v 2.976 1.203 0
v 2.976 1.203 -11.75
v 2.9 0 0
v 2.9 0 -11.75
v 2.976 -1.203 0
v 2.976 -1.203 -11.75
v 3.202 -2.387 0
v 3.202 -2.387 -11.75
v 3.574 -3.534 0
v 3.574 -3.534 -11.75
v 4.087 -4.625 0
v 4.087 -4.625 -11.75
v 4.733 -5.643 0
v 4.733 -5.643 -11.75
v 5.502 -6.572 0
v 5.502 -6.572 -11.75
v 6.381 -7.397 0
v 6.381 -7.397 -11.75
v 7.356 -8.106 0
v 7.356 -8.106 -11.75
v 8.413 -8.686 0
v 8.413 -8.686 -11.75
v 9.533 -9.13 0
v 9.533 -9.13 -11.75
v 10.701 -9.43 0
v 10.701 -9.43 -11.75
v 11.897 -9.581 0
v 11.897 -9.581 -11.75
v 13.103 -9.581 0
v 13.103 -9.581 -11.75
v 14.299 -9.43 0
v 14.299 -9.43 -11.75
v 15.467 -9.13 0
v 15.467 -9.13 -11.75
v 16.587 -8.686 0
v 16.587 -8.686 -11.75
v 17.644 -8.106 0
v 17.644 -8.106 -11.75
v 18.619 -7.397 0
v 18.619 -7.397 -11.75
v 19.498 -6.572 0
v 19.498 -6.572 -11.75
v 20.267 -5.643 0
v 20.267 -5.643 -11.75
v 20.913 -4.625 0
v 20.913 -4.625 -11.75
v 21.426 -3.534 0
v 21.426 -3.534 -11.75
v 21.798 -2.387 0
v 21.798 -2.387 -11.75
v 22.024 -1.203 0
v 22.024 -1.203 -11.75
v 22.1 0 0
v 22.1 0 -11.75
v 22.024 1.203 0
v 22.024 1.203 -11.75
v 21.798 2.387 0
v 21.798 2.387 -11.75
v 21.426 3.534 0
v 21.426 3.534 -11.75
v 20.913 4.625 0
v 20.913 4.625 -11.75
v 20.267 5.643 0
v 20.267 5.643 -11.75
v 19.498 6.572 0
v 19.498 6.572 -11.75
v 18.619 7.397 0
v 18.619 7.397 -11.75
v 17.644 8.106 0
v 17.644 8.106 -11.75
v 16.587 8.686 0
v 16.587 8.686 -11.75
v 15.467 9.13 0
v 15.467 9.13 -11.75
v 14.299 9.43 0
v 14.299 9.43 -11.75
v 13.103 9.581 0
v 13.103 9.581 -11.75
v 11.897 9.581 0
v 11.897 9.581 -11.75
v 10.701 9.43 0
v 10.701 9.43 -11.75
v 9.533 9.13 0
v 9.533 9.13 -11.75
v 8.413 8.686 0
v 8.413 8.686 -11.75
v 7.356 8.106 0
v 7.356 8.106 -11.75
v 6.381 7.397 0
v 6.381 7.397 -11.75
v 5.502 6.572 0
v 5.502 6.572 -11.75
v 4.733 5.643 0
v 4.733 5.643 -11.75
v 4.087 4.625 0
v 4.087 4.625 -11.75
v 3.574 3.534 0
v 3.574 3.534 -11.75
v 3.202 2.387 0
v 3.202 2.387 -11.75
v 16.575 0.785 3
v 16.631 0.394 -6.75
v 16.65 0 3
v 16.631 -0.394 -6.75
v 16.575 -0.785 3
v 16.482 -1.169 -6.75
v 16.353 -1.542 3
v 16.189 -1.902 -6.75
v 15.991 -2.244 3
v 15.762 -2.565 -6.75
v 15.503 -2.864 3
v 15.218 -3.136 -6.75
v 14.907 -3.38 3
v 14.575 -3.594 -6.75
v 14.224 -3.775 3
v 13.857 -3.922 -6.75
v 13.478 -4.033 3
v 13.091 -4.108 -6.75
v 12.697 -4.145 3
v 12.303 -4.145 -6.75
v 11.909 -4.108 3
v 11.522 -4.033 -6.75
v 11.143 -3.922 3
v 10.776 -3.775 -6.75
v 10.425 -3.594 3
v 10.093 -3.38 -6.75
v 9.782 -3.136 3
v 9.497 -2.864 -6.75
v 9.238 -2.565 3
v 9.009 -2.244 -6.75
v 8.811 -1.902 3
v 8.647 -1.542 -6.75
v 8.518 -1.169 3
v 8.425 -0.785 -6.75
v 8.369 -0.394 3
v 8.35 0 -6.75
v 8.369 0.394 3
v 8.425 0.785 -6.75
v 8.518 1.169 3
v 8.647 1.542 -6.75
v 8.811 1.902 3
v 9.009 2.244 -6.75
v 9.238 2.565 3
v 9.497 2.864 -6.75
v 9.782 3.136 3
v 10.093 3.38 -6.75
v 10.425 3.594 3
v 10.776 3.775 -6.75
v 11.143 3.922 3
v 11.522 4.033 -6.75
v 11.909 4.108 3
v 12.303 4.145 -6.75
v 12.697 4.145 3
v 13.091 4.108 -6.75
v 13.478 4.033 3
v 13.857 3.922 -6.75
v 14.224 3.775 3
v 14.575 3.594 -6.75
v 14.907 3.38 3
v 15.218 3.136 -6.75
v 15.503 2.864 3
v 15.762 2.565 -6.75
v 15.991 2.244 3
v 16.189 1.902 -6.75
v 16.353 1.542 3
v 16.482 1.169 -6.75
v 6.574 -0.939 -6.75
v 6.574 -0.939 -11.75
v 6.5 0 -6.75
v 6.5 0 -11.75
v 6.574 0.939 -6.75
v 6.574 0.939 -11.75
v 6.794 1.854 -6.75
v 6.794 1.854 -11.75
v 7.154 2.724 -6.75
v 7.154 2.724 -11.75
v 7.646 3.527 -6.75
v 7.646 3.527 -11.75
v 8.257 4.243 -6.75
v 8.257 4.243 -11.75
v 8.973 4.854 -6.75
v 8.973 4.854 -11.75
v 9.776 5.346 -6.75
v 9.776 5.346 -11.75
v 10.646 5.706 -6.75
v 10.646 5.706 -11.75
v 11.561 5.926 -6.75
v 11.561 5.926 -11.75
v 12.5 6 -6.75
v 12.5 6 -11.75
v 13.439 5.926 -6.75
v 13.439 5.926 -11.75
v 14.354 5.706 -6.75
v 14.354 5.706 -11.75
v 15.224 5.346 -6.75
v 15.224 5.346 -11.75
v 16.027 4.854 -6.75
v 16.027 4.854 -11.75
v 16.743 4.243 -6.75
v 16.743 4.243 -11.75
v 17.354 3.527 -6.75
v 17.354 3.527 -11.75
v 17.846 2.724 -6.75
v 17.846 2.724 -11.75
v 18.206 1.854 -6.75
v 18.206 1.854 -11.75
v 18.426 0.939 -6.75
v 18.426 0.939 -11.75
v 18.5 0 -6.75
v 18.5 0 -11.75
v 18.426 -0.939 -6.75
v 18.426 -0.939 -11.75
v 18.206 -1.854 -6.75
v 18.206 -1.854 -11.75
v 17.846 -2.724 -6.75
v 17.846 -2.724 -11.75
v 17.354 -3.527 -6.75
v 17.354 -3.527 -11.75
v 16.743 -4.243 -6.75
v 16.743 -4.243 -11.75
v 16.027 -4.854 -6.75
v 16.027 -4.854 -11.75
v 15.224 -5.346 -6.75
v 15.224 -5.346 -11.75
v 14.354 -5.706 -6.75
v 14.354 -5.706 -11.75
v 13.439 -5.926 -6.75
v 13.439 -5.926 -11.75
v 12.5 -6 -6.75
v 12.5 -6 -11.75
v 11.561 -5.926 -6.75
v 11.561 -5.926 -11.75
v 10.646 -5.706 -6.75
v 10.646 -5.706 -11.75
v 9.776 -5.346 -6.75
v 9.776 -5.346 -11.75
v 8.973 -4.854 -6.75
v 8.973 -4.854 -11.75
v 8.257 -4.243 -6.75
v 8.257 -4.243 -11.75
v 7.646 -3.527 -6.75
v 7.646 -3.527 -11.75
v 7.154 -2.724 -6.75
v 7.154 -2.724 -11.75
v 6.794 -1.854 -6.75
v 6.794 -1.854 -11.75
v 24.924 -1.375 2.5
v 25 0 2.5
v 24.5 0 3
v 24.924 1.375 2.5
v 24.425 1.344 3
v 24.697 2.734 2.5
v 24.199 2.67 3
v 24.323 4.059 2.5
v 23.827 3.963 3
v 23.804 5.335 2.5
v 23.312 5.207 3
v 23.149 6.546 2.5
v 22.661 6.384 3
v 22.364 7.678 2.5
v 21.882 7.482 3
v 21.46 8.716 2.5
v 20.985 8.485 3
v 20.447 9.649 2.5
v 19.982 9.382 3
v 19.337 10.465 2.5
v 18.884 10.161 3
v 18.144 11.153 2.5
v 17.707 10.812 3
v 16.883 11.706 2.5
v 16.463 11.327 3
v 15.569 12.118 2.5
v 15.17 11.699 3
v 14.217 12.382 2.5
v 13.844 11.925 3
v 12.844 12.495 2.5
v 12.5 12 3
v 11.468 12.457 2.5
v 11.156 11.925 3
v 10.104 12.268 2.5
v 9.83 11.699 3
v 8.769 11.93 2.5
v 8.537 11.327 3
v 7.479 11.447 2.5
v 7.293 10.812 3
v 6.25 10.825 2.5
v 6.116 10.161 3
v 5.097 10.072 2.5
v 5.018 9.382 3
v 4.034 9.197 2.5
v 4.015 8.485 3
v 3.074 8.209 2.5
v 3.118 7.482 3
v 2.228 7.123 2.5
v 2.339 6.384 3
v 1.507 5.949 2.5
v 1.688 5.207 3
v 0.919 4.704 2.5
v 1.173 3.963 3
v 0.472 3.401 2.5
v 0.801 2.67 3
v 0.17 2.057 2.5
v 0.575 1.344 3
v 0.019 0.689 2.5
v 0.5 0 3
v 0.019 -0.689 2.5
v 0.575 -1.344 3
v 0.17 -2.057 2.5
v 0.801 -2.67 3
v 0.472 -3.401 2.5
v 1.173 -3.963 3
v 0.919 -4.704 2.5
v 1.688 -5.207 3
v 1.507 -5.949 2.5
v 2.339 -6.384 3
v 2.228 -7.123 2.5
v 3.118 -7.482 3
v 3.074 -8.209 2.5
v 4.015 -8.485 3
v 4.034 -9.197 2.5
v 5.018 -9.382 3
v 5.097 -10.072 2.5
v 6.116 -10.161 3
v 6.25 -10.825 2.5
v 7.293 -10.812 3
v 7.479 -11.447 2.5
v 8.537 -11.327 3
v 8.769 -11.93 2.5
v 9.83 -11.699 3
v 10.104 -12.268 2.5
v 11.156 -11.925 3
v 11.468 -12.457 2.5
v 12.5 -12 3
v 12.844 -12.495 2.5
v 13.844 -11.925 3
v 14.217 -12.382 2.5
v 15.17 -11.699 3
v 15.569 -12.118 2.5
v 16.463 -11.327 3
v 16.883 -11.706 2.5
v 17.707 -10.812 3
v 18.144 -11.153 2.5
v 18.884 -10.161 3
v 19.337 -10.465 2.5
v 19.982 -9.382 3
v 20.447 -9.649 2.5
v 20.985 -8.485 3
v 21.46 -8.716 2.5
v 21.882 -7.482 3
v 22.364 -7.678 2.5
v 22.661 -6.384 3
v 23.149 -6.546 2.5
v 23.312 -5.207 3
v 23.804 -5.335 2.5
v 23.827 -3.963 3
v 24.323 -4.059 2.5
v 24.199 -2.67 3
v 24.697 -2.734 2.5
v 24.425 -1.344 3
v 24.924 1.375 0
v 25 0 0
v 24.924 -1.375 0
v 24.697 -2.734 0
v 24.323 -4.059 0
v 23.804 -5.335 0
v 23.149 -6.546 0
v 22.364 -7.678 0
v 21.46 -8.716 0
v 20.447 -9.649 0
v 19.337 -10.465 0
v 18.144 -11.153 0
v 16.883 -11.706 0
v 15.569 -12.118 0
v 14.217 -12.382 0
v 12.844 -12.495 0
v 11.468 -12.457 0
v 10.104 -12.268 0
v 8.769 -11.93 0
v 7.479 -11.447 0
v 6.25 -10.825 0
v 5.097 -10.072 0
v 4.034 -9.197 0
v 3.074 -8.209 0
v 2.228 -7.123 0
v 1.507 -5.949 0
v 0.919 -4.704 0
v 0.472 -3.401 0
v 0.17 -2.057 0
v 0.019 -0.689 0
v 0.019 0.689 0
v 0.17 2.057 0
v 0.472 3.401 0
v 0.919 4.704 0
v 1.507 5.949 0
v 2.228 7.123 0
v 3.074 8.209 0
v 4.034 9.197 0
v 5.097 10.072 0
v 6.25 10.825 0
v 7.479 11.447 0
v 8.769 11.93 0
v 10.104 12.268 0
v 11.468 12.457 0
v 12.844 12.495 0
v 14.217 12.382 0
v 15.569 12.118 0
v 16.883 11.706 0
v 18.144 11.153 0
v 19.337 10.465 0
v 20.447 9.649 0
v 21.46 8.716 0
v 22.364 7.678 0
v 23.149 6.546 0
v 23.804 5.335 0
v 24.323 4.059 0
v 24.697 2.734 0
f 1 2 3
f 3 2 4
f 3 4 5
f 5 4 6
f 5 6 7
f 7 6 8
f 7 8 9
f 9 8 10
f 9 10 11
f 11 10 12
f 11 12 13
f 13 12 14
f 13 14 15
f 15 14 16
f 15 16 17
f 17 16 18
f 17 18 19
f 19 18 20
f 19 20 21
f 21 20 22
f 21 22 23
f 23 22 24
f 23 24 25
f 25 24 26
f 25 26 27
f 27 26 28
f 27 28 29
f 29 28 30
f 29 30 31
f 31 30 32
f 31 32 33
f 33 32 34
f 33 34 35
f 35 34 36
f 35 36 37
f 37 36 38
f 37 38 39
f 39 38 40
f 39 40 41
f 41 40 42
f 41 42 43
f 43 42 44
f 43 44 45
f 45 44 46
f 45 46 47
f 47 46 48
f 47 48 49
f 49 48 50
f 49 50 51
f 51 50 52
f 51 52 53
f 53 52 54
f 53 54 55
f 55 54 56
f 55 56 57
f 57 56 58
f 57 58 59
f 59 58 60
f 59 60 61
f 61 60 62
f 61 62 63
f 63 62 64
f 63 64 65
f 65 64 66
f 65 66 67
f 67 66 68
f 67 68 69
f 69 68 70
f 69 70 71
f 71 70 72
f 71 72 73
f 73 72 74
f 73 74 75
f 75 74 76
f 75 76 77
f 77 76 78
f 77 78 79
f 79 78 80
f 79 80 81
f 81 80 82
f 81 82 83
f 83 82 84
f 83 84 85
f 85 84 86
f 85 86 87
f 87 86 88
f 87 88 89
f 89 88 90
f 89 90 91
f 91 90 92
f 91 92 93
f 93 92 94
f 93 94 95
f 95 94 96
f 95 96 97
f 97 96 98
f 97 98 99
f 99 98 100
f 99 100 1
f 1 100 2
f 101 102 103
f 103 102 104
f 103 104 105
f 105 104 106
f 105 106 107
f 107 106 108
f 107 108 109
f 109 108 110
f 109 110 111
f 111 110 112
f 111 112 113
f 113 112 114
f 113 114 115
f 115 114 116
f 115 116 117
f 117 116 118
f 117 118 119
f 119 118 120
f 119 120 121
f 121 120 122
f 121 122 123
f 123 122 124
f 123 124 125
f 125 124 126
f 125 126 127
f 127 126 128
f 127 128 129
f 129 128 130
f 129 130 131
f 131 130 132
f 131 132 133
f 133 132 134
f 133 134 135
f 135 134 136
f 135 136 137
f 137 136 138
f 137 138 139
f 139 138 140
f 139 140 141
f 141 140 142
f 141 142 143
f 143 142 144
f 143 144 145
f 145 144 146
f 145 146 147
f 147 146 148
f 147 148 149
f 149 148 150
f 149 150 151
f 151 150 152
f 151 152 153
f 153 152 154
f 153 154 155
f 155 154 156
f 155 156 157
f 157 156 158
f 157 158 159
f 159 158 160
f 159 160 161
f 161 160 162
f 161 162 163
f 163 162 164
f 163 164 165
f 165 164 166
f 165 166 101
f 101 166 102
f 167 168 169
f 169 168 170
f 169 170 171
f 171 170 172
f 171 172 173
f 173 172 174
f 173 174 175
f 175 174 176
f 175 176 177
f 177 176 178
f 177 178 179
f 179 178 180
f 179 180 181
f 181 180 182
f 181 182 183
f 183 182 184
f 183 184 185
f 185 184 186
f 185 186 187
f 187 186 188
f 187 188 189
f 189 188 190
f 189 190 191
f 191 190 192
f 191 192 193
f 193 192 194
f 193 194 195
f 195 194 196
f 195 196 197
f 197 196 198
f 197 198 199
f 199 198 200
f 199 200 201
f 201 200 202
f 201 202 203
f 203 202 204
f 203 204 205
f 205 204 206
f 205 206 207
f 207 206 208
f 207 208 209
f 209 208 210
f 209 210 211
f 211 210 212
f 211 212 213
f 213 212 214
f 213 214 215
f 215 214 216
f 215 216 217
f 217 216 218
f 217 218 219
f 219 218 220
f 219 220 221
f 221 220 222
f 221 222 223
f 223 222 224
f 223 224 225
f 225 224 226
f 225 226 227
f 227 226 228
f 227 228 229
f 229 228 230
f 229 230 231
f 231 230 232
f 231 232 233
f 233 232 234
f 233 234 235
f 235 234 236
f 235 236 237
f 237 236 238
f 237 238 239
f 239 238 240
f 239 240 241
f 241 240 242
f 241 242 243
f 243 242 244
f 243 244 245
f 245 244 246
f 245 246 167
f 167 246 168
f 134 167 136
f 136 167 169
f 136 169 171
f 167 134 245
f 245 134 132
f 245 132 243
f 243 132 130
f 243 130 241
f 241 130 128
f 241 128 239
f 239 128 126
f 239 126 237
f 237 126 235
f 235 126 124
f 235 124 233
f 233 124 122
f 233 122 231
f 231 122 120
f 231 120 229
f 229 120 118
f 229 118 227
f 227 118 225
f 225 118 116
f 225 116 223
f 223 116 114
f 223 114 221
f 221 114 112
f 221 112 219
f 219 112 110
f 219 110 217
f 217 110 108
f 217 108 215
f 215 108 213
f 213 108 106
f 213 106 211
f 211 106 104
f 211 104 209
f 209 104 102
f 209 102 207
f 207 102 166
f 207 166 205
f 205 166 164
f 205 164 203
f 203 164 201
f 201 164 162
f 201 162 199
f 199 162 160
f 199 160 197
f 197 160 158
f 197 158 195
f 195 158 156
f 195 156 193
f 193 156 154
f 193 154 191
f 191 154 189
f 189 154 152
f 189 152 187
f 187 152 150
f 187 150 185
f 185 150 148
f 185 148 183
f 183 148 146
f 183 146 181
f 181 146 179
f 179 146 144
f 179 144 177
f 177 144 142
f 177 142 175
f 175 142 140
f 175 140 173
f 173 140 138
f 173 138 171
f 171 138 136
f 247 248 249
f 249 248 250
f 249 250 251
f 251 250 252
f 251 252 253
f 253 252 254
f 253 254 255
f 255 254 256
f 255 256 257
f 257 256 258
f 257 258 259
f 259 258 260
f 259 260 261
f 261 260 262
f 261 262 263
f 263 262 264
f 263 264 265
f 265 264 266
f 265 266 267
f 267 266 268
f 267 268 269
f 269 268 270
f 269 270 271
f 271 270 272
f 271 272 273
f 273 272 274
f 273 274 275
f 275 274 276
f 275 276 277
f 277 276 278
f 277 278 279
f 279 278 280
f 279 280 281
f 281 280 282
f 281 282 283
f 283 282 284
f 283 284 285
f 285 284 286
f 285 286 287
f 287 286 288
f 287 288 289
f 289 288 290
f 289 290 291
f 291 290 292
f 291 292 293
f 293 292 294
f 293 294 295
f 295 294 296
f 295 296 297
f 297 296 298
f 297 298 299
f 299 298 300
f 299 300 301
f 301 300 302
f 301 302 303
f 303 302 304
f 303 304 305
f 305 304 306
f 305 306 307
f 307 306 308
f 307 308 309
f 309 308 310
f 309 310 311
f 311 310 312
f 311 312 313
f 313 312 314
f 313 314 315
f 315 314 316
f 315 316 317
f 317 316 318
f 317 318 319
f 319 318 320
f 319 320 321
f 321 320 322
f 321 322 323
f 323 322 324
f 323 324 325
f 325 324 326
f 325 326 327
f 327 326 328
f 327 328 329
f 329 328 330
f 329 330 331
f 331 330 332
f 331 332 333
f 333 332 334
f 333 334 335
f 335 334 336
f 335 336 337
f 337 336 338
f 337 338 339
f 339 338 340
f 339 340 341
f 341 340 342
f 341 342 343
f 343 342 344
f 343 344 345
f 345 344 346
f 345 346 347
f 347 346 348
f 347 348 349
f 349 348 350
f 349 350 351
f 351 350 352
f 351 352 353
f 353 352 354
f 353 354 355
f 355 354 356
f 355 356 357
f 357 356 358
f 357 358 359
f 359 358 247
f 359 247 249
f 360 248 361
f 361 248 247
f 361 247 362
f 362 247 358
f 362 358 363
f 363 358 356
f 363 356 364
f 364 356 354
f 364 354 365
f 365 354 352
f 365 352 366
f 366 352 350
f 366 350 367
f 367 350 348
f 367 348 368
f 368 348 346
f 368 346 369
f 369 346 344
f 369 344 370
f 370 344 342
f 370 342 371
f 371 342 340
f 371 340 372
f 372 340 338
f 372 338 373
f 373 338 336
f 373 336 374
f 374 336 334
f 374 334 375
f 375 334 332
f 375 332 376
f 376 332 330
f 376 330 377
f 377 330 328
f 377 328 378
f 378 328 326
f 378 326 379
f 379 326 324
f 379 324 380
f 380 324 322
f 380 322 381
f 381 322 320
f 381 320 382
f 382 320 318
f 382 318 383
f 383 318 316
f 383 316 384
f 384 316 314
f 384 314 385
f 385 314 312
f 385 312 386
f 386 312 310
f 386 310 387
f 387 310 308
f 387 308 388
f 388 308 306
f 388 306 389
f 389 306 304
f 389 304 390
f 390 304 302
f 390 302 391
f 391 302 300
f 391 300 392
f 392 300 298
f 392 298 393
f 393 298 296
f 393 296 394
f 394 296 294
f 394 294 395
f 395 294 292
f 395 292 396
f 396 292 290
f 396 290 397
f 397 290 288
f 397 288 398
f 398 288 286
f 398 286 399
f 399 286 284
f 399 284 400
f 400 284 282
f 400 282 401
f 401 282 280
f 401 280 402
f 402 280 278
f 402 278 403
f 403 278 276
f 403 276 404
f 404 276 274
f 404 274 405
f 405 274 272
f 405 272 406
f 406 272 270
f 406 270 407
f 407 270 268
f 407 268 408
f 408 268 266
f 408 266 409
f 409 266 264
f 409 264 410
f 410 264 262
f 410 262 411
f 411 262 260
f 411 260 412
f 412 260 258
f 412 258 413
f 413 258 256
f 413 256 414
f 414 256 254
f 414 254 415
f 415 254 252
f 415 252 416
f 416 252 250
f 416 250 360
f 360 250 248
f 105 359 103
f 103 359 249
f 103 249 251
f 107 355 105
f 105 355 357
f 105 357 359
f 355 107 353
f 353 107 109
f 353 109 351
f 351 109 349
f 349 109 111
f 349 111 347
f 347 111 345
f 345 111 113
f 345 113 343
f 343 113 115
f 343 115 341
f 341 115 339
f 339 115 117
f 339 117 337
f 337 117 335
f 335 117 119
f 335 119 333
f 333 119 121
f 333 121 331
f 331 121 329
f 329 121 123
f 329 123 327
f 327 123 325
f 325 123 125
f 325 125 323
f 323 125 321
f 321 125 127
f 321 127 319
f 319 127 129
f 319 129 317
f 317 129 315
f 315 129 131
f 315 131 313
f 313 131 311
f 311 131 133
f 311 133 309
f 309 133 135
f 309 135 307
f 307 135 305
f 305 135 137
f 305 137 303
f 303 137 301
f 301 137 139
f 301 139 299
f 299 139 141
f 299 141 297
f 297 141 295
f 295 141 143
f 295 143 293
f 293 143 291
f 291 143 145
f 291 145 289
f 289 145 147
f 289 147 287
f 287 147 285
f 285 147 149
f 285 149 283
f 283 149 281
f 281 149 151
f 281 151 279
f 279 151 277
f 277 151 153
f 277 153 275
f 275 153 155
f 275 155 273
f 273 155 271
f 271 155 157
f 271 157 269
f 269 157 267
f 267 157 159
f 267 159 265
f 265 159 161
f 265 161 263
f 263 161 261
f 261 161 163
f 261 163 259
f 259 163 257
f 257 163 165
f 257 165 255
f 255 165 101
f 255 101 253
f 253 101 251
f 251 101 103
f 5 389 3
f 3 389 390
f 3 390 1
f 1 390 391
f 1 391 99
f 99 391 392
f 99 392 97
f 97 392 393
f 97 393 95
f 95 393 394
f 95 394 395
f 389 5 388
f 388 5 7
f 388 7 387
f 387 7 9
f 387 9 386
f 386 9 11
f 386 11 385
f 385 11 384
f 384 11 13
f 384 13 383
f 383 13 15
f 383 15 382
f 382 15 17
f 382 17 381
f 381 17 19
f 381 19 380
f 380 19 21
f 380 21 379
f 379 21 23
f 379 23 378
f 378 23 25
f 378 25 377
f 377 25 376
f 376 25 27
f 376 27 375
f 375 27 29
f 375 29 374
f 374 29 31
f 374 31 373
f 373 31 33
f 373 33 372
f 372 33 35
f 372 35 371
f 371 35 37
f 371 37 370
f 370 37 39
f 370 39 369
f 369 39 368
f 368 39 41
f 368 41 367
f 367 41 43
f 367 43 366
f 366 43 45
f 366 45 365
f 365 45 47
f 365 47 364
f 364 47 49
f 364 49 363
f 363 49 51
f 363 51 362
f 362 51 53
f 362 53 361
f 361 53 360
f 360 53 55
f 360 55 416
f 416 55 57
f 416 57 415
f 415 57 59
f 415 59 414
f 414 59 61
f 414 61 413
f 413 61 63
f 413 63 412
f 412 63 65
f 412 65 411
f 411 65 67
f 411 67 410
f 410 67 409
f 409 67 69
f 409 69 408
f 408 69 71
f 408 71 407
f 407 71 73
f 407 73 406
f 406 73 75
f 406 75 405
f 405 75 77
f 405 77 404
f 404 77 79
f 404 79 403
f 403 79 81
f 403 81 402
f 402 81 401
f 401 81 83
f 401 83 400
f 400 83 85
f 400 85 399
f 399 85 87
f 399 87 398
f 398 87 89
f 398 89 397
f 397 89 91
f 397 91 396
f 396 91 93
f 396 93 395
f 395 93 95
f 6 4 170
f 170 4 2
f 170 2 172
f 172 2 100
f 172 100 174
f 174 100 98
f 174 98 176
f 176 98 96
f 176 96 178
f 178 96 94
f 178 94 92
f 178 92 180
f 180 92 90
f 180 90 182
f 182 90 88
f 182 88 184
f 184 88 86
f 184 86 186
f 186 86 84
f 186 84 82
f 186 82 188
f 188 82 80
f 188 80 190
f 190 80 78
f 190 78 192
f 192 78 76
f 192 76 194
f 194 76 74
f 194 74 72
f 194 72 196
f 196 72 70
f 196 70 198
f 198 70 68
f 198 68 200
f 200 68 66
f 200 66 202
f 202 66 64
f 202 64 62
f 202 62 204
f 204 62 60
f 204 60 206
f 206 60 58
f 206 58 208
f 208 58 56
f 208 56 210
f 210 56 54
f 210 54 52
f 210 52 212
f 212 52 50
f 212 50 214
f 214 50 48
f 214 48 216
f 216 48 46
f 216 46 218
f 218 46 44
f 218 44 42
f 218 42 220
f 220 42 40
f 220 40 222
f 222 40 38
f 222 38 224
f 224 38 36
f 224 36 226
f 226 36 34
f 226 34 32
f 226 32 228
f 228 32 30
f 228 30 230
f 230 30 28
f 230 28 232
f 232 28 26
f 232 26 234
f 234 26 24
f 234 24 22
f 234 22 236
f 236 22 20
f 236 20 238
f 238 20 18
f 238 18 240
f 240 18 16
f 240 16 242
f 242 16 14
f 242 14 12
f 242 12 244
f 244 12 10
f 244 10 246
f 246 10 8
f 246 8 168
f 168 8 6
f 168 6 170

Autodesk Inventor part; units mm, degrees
ref_plane "YZ Plane" through (0, 0, 0) normal (1, 0, 0) x (0, 1, 0)
ref_plane "XY Plane" through (0, 0, 0) normal (0, 0, 1) x (1, 0, 0)
ref_plane "РабПлоскость1" through (19.6828, -0.4261, 0) normal (0, 0, 1) x (0.9982449, -0.0592218, 0)
sketch "Эскиз1" plane through (19.6828, -0.4261, 0) normal (0, 0, 1) x (0.9982449, -0.0592218, 0)
  circle A0 centre (-7.1954, 0) radius 10 projected
  circle A1 centre (-7.1954, 0) radius 12.5 projected
  point P0 (-19.6734, -0.7403)
  point P1 (0.3275, 9.9828)
  point P2 (1.4551, -9.0233)
  point P3 (-15.8459, 9.0233)
  point P4 (-14.7183, -9.9828)
extrude "Выдавливание1" add sketch "Эскиз1" against normal blind 11.75 contours A0
sketch "Эскиз2" plane through (12.5, 0, 0) normal (0, 0, 1) x (1, 0, 0)
  circle A0 centre (0, 0) radius 12.5 projected
  point P0 (-12.5, 0)
extrude "Выдавливание2" add sketch "Эскиз2" along normal blind 3
chamfer "Фаска1" distance 0.5 angle 45 1 edges at (0, 0, 3)
sketch "Эскиз8" plane through (12.5, 0, -11.75) normal (0, 0, -1) x (-1, 0, 0)
  circle A0 centre (0, 0) radius 6
  point P0 (12.5, 0)
  dimension "d23" = 12
extrude "Выдавливание8" cut sketch "Эскиз8" against normal blind 5
sketch "Эскиз9" plane through (12.5, 0, -6.75) normal (0, 0, -1) x (-1, 0, 0)
  circle A0 centre (0, 0) radius 4.15
  circle A1 centre (0, 0) radius 6 projected
  point P0 (12.5, 0)
  dimension "d26" = 8.3
extrude "Выдавливание9" cut sketch "Эскиз9" against normal through all contours A0
ref_plane "РабПлоскость3" through (12.5, 10, 0) normal (0, 1, 0) x (-1, 0, 0)
sketch "Эскиз12" plane through (12.5, 0, -11.75) normal (0, 0, -1) x (-1, 0, 0)
  circle A0 centre (0, 0) radius 9.6
  circle A1 centre (0, 0) radius 10 projected
  point P0 (12.5, 0)
  dimension "d35" = 19.2
  dimension "d36" = 20
extrude "Выдавливание12" cut sketch "Эскиз12" against normal up to surface (11.75 mm away)
properties part number "bushing"
